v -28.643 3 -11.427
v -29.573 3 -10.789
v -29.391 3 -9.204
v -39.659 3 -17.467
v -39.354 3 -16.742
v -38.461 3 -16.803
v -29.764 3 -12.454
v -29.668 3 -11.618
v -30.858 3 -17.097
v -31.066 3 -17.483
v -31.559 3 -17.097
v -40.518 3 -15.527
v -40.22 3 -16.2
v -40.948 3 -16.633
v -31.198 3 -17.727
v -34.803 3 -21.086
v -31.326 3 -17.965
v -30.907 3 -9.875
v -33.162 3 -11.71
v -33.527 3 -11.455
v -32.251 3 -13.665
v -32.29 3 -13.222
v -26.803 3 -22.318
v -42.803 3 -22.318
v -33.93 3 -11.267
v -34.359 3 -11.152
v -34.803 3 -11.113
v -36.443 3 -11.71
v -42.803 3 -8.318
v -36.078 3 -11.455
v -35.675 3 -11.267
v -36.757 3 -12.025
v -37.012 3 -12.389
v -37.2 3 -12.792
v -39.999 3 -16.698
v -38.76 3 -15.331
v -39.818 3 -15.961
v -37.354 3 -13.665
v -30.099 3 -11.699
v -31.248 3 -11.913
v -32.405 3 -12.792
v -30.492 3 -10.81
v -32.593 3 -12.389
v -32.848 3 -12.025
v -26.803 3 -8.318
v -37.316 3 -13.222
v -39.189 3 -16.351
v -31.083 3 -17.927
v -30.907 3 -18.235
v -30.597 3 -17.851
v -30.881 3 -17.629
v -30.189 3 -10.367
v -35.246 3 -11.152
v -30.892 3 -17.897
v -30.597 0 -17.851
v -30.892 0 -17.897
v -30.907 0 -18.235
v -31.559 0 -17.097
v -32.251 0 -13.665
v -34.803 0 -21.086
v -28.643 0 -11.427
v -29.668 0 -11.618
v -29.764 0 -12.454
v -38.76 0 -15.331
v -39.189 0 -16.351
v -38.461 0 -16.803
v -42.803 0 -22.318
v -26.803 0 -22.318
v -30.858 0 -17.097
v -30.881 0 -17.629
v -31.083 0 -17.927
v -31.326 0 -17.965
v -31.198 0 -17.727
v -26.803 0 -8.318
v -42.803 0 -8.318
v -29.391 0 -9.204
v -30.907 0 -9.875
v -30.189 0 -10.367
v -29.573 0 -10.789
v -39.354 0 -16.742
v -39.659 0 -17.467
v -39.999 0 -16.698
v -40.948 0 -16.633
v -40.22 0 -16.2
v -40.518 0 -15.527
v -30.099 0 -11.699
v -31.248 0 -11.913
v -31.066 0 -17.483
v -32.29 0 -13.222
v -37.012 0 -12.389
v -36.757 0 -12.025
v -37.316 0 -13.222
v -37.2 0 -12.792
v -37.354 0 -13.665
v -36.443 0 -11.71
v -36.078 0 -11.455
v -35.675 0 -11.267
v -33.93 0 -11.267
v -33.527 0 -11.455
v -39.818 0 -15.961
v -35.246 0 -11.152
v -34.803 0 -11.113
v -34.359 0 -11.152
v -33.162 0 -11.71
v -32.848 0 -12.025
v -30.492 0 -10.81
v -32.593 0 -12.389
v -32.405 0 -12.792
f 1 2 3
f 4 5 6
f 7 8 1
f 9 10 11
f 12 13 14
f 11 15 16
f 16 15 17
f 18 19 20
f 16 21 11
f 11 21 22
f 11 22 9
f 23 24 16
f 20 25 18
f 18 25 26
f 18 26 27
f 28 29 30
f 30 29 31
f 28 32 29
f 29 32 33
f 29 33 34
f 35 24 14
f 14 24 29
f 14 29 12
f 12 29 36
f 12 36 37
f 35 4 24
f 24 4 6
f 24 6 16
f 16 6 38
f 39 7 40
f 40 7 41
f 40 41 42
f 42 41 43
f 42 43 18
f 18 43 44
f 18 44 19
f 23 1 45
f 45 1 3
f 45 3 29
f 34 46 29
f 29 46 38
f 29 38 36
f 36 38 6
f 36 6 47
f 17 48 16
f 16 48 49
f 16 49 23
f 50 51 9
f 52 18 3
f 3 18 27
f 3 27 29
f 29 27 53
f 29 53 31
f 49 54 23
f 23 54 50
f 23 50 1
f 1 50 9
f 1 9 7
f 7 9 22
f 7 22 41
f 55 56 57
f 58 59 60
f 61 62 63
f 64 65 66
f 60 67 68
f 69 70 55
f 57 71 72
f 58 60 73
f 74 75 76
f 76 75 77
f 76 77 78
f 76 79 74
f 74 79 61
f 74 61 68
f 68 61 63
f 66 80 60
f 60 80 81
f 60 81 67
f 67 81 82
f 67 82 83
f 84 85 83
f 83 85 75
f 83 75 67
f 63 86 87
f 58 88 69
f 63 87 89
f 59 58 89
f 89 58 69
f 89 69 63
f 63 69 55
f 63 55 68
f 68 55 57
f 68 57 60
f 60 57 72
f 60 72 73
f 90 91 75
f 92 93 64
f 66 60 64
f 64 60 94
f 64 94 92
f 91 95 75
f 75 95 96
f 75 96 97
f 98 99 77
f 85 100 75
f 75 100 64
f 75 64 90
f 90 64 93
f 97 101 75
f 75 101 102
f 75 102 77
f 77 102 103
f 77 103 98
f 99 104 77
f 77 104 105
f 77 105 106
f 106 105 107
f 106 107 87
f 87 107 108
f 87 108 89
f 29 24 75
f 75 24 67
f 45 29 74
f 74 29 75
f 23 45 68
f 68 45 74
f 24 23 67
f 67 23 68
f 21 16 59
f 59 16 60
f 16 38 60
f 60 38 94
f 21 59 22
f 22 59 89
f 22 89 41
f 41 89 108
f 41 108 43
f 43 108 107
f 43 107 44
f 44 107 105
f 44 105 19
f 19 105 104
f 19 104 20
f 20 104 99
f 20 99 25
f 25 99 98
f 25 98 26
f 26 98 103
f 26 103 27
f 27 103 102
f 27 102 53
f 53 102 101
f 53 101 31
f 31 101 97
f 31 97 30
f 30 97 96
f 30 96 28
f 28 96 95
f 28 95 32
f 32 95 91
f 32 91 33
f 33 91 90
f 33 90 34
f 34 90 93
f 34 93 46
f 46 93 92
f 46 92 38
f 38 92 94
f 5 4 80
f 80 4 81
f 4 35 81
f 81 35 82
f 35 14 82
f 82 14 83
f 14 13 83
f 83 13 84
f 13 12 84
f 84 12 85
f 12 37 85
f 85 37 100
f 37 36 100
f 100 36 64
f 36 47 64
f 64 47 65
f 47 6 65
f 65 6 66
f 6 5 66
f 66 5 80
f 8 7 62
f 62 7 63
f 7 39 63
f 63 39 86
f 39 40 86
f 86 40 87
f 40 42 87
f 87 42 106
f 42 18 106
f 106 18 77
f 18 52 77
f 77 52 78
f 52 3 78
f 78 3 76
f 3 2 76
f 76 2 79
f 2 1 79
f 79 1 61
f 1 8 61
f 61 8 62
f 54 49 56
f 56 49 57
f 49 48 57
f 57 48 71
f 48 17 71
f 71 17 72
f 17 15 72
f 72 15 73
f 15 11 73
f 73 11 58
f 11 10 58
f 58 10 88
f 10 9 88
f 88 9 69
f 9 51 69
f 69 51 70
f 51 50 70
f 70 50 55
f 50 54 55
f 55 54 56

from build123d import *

# Parameters (mm, degrees)
SKETCH1_W           = 16
SKETCH1_H           = 14
BOSS_EXTRUDE1_DEPTH = 3


with BuildPart() as part:
    # Sketch1 → Boss-Extrude1 (new body)
    with BuildSketch(Plane(origin=(0, 0, 0), x_dir=(1, 0, 0), z_dir=(0, 1, 0))):
        with Locations((-34.802547771, 15.318471338)):
            Rectangle(SKETCH1_W, SKETCH1_H)
        with BuildLine():
            Line((-34.802547771, 21.085939893), (-37.354294581, 13.665043558))
            ThreePointArc((-37.354294581, 13.665043558), (-34.802547771, 11.113296747), (-32.250800961, 13.665043558))
            Line((-32.250800961, 13.665043558), (-34.802547771, 21.085939893))
        make_face(mode=Mode.SUBTRACT)
        Polygon((-39.65867818, 17.46662554), (-39.999163851, 16.697953343), (-40.947570701, 16.633402092), (-40.219675658, 16.200131233), (-40.517939861, 15.5267772), (-39.817900069, 15.960979096), (-38.76035915, 15.331490454), (-39.189256036, 16.350897547), (-38.460919473, 16.802650605), (-39.353755451, 16.741881664), align=None, mode=Mode.SUBTRACT)
        Polygon((-29.764149732, 12.454265734), (-30.098857658, 11.698637236), (-31.248127998, 11.913183956), (-30.492306767, 10.810396065), (-30.906618006, 9.875057055), (-30.188552158, 10.36720012), (-29.391182209, 9.203790192), (-29.573076572, 10.789030573), (-28.642568323, 11.42677596), (-29.668222777, 11.618245966), align=None, mode=Mode.SUBTRACT)
        Polygon((-30.906618006, 18.234753406), (-31.083034427, 17.927114996), (-31.326443698, 17.965418816), (-31.197762972, 17.727049113), (-31.558988429, 17.097137085), (-31.066185401, 17.48331326), (-30.857713309, 17.097137085), (-30.880567513, 17.628769359), (-30.59737318, 17.850689473), (-30.892101379, 17.897069037), align=None, mode=Mode.SUBTRACT)
    extrude(amount=BOSS_EXTRUDE1_DEPTH)


solid = part.part
